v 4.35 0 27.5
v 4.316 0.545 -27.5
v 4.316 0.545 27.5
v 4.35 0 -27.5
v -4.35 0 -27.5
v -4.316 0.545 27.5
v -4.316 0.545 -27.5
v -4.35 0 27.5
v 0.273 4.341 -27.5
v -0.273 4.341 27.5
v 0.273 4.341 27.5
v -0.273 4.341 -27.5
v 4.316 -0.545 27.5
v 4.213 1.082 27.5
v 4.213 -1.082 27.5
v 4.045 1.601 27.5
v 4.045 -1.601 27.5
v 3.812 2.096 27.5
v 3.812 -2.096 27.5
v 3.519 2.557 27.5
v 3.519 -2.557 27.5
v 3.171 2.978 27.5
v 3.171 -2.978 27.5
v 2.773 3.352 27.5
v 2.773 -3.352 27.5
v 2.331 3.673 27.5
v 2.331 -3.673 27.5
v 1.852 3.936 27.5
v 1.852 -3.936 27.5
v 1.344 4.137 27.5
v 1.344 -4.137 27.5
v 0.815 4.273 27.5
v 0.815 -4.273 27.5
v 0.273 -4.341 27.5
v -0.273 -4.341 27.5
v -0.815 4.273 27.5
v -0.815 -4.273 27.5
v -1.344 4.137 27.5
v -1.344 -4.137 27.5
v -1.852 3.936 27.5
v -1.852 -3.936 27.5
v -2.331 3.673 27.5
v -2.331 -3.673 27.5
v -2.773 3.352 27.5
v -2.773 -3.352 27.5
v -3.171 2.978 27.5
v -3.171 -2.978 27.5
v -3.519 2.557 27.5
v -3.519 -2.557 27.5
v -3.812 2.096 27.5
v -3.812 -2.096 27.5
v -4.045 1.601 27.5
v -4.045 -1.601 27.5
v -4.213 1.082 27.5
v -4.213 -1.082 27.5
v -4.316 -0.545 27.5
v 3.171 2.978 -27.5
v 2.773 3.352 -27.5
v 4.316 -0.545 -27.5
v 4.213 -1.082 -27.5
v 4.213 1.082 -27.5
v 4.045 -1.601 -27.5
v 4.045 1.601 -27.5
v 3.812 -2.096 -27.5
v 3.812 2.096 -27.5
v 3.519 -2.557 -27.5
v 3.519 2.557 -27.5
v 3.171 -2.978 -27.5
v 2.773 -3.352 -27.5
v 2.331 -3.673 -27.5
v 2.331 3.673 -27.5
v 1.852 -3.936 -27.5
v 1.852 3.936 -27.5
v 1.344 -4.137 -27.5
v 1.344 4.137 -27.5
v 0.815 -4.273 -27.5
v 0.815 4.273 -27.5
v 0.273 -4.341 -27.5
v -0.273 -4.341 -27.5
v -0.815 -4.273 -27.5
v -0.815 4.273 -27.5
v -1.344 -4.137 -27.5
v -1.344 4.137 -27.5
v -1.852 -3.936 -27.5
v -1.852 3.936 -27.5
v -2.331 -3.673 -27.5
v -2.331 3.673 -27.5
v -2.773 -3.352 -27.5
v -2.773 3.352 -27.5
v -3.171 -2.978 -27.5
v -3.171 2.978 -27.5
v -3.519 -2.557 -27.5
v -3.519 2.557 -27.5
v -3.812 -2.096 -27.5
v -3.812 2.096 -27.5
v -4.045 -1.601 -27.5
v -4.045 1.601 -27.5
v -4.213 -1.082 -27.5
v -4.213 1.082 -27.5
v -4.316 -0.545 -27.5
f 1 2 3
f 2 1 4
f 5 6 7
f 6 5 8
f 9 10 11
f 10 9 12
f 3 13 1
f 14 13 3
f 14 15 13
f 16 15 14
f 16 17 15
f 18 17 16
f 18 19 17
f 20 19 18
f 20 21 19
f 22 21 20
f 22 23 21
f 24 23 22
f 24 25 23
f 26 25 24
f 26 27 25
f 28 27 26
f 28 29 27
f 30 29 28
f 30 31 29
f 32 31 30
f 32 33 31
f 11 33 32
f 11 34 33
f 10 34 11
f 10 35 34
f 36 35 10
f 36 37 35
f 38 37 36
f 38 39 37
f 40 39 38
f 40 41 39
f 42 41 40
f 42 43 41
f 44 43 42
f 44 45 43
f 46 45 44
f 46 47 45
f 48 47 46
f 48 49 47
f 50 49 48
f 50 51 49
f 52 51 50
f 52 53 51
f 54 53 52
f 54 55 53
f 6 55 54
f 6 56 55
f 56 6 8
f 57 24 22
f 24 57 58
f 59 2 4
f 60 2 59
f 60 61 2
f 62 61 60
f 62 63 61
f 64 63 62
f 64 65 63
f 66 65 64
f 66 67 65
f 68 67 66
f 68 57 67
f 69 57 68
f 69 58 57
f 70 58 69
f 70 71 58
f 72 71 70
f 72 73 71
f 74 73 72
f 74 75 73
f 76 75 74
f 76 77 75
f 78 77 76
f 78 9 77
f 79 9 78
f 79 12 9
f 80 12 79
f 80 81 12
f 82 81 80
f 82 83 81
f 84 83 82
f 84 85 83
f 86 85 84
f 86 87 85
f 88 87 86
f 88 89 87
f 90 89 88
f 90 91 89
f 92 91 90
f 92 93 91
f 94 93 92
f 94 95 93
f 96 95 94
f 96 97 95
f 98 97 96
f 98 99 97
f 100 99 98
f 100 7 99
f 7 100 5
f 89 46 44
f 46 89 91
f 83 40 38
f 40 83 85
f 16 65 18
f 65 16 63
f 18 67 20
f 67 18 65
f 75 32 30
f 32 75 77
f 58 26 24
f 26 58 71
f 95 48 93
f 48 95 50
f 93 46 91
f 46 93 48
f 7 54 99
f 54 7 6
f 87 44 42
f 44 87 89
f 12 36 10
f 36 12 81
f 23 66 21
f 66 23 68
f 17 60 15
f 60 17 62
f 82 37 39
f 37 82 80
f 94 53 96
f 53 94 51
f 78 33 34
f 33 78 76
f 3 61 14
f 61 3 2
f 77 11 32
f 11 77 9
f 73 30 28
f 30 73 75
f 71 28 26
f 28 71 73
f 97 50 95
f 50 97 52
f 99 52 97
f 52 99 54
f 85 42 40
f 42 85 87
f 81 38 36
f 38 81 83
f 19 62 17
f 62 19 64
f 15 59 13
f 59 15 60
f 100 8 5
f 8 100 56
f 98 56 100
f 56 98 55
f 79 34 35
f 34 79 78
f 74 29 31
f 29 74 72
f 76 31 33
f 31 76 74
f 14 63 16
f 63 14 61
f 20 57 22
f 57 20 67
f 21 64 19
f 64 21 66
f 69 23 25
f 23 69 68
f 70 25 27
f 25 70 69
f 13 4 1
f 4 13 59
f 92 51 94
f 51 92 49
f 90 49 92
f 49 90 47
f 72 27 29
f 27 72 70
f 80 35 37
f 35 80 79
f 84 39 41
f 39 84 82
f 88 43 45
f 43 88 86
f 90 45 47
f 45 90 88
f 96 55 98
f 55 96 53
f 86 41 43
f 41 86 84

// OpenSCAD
$fn = 50;


difference() {
	union() {
		translate(v = [0, 0, -27.5000000000]) {
			cylinder(h = 55, r = 4.3500000000);
		}
	}
	union() {
		translate(v = [0, 0, -100.0000000000]) {
			cylinder(h = 200, r = 0);
		}
	}
}
